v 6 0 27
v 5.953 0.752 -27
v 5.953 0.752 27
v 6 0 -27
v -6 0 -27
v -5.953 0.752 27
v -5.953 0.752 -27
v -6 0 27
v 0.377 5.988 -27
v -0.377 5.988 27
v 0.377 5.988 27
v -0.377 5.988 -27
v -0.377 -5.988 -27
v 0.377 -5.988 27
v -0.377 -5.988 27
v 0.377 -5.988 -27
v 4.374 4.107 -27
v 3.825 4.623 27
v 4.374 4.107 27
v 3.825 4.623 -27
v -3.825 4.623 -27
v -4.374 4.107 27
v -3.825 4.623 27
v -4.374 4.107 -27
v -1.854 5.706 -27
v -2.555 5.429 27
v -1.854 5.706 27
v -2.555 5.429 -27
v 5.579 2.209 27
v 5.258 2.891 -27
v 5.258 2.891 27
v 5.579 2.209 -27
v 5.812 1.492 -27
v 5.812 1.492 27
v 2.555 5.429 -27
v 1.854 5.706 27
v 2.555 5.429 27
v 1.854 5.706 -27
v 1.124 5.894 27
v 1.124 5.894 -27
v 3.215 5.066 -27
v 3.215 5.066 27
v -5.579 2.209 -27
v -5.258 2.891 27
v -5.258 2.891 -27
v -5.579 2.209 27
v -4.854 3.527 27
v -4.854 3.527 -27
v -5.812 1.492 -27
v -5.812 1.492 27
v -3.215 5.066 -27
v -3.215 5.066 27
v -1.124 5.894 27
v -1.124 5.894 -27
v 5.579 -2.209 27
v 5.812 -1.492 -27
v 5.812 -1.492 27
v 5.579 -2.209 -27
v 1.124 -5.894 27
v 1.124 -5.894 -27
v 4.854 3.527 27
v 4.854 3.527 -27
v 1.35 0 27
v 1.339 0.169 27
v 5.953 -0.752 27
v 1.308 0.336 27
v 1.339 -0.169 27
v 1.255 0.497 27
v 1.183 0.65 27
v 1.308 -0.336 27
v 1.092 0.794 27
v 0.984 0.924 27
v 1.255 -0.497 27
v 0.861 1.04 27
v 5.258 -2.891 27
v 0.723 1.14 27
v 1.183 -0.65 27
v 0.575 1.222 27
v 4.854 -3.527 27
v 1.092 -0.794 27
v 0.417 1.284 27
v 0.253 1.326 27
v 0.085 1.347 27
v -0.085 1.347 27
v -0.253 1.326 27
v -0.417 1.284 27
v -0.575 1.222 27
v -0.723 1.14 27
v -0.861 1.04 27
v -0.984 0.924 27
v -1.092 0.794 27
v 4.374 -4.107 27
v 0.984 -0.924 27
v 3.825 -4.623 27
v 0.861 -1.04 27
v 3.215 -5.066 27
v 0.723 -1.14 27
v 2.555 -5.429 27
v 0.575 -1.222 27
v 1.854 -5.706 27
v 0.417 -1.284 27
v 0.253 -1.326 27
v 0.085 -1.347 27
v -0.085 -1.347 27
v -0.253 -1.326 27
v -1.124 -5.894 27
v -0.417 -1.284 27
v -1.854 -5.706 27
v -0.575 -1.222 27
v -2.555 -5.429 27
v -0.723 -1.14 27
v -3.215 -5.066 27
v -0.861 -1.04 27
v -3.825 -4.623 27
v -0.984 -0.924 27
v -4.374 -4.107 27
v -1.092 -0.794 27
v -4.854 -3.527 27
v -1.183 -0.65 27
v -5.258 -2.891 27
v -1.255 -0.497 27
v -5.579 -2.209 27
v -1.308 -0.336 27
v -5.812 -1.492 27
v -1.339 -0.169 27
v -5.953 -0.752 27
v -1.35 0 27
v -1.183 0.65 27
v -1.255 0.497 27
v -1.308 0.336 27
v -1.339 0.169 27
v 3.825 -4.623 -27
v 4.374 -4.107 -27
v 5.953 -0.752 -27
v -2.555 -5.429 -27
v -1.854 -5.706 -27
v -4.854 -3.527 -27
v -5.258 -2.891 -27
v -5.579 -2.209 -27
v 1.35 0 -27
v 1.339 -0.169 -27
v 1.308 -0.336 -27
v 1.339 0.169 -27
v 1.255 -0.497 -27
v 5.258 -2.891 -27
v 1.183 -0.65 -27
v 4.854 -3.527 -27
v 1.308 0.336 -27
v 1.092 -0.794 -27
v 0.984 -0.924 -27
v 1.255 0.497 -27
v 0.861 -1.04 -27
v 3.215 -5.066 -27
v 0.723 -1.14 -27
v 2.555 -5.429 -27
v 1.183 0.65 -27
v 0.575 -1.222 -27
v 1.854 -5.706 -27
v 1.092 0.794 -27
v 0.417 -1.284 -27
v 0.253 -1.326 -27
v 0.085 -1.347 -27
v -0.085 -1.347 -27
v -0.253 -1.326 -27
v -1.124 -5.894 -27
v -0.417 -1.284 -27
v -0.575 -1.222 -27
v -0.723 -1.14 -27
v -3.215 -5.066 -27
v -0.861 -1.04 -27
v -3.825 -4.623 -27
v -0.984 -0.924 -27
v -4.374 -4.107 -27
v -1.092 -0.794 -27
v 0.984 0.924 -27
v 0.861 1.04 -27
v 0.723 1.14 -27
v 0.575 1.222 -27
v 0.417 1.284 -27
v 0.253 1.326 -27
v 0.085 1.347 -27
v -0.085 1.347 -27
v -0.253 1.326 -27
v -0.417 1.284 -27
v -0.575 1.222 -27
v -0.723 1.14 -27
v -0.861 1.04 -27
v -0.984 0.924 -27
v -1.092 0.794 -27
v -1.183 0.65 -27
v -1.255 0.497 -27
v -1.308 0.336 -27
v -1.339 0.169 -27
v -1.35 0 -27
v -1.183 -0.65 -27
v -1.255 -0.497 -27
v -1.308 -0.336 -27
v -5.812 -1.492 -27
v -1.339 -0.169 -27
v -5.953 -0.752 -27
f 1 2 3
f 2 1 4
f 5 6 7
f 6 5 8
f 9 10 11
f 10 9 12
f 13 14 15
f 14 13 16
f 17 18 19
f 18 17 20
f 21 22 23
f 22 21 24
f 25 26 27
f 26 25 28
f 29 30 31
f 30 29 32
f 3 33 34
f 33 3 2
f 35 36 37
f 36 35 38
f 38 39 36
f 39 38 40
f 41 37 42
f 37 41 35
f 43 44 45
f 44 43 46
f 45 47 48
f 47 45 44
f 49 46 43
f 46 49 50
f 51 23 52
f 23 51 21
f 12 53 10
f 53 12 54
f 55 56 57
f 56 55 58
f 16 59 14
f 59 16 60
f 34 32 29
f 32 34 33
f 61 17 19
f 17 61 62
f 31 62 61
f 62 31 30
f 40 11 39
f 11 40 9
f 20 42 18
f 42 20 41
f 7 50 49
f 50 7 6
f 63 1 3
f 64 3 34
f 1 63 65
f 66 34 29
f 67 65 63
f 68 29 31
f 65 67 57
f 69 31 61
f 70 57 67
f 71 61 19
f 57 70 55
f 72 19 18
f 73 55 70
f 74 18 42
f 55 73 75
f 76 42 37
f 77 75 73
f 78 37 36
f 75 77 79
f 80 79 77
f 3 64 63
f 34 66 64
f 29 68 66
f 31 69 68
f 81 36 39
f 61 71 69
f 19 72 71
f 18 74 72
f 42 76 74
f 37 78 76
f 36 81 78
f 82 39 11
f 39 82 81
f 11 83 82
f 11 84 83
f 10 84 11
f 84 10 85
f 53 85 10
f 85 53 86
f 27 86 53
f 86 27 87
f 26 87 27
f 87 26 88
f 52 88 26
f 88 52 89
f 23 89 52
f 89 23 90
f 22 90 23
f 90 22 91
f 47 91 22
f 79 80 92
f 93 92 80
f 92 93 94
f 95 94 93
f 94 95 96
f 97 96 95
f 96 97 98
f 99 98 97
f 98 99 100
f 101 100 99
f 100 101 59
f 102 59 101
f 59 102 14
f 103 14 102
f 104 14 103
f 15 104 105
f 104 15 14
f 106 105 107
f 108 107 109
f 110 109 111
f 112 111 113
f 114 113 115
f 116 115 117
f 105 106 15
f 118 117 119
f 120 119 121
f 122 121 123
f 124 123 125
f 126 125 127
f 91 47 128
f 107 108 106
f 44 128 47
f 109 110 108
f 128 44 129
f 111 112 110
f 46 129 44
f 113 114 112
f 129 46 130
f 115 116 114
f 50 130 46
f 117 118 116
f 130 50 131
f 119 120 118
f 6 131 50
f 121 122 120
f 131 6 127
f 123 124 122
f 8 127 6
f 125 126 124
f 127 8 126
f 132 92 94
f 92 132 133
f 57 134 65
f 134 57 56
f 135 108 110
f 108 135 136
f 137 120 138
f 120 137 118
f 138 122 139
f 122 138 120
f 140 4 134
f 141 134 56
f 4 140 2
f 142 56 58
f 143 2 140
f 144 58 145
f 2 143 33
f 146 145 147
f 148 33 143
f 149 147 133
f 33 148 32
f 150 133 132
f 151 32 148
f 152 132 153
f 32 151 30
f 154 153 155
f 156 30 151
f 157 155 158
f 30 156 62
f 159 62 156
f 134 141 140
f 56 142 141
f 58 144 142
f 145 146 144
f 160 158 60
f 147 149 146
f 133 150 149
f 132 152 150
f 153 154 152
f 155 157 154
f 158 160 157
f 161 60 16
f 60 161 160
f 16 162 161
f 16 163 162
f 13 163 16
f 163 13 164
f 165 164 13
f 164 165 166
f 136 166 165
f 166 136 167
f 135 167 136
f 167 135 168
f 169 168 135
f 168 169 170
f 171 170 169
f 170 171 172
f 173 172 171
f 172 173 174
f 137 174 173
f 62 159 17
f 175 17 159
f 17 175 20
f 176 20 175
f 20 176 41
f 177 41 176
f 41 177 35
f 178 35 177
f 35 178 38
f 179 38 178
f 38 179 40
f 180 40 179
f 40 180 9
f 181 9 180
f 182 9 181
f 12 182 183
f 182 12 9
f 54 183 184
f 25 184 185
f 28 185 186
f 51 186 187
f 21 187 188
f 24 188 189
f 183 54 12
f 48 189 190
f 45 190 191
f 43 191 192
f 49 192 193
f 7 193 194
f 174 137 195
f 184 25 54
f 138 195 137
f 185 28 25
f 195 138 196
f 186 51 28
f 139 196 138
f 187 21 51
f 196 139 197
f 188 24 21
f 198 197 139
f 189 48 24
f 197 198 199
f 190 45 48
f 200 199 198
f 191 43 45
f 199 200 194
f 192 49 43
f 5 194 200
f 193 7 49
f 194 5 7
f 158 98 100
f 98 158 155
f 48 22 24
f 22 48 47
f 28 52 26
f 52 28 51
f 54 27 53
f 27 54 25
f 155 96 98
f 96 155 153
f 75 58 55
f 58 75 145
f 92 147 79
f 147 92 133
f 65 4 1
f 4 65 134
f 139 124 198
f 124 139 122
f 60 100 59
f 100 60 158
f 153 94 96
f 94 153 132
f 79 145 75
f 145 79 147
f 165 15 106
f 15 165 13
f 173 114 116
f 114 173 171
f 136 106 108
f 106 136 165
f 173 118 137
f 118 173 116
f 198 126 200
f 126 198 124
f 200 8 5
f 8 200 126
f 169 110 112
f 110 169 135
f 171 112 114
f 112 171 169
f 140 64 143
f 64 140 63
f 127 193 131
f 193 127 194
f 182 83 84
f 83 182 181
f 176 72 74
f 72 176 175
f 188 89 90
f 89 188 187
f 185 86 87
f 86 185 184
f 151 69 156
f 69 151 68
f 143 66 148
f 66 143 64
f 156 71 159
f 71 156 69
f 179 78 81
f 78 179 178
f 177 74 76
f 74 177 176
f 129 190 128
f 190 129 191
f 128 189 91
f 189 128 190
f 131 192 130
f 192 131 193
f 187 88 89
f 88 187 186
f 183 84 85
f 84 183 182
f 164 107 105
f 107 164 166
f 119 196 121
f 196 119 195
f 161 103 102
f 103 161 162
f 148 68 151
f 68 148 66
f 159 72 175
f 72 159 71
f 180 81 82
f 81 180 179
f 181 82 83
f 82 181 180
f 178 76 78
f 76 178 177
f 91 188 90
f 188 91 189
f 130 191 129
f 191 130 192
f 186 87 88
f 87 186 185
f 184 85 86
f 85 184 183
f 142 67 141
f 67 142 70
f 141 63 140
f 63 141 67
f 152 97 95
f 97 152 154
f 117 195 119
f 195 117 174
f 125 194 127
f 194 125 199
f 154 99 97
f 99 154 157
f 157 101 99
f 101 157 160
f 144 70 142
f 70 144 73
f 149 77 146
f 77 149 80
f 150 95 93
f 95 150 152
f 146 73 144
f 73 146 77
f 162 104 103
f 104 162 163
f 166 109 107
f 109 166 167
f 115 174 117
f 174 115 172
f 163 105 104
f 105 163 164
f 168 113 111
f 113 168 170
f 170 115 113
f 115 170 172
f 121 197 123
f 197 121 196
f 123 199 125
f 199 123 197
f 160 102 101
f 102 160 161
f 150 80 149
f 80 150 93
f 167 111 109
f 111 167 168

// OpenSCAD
$fn = 50;


difference() {
	union() {
		translate(v = [0, 0, -27.0000000000]) {
			cylinder(h = 54, r = 6.0000000000);
		}
	}
	union() {
		translate(v = [0, 0, -100.0000000000]) {
			cylinder(h = 200, r = 1.3500000000);
		}
	}
}
